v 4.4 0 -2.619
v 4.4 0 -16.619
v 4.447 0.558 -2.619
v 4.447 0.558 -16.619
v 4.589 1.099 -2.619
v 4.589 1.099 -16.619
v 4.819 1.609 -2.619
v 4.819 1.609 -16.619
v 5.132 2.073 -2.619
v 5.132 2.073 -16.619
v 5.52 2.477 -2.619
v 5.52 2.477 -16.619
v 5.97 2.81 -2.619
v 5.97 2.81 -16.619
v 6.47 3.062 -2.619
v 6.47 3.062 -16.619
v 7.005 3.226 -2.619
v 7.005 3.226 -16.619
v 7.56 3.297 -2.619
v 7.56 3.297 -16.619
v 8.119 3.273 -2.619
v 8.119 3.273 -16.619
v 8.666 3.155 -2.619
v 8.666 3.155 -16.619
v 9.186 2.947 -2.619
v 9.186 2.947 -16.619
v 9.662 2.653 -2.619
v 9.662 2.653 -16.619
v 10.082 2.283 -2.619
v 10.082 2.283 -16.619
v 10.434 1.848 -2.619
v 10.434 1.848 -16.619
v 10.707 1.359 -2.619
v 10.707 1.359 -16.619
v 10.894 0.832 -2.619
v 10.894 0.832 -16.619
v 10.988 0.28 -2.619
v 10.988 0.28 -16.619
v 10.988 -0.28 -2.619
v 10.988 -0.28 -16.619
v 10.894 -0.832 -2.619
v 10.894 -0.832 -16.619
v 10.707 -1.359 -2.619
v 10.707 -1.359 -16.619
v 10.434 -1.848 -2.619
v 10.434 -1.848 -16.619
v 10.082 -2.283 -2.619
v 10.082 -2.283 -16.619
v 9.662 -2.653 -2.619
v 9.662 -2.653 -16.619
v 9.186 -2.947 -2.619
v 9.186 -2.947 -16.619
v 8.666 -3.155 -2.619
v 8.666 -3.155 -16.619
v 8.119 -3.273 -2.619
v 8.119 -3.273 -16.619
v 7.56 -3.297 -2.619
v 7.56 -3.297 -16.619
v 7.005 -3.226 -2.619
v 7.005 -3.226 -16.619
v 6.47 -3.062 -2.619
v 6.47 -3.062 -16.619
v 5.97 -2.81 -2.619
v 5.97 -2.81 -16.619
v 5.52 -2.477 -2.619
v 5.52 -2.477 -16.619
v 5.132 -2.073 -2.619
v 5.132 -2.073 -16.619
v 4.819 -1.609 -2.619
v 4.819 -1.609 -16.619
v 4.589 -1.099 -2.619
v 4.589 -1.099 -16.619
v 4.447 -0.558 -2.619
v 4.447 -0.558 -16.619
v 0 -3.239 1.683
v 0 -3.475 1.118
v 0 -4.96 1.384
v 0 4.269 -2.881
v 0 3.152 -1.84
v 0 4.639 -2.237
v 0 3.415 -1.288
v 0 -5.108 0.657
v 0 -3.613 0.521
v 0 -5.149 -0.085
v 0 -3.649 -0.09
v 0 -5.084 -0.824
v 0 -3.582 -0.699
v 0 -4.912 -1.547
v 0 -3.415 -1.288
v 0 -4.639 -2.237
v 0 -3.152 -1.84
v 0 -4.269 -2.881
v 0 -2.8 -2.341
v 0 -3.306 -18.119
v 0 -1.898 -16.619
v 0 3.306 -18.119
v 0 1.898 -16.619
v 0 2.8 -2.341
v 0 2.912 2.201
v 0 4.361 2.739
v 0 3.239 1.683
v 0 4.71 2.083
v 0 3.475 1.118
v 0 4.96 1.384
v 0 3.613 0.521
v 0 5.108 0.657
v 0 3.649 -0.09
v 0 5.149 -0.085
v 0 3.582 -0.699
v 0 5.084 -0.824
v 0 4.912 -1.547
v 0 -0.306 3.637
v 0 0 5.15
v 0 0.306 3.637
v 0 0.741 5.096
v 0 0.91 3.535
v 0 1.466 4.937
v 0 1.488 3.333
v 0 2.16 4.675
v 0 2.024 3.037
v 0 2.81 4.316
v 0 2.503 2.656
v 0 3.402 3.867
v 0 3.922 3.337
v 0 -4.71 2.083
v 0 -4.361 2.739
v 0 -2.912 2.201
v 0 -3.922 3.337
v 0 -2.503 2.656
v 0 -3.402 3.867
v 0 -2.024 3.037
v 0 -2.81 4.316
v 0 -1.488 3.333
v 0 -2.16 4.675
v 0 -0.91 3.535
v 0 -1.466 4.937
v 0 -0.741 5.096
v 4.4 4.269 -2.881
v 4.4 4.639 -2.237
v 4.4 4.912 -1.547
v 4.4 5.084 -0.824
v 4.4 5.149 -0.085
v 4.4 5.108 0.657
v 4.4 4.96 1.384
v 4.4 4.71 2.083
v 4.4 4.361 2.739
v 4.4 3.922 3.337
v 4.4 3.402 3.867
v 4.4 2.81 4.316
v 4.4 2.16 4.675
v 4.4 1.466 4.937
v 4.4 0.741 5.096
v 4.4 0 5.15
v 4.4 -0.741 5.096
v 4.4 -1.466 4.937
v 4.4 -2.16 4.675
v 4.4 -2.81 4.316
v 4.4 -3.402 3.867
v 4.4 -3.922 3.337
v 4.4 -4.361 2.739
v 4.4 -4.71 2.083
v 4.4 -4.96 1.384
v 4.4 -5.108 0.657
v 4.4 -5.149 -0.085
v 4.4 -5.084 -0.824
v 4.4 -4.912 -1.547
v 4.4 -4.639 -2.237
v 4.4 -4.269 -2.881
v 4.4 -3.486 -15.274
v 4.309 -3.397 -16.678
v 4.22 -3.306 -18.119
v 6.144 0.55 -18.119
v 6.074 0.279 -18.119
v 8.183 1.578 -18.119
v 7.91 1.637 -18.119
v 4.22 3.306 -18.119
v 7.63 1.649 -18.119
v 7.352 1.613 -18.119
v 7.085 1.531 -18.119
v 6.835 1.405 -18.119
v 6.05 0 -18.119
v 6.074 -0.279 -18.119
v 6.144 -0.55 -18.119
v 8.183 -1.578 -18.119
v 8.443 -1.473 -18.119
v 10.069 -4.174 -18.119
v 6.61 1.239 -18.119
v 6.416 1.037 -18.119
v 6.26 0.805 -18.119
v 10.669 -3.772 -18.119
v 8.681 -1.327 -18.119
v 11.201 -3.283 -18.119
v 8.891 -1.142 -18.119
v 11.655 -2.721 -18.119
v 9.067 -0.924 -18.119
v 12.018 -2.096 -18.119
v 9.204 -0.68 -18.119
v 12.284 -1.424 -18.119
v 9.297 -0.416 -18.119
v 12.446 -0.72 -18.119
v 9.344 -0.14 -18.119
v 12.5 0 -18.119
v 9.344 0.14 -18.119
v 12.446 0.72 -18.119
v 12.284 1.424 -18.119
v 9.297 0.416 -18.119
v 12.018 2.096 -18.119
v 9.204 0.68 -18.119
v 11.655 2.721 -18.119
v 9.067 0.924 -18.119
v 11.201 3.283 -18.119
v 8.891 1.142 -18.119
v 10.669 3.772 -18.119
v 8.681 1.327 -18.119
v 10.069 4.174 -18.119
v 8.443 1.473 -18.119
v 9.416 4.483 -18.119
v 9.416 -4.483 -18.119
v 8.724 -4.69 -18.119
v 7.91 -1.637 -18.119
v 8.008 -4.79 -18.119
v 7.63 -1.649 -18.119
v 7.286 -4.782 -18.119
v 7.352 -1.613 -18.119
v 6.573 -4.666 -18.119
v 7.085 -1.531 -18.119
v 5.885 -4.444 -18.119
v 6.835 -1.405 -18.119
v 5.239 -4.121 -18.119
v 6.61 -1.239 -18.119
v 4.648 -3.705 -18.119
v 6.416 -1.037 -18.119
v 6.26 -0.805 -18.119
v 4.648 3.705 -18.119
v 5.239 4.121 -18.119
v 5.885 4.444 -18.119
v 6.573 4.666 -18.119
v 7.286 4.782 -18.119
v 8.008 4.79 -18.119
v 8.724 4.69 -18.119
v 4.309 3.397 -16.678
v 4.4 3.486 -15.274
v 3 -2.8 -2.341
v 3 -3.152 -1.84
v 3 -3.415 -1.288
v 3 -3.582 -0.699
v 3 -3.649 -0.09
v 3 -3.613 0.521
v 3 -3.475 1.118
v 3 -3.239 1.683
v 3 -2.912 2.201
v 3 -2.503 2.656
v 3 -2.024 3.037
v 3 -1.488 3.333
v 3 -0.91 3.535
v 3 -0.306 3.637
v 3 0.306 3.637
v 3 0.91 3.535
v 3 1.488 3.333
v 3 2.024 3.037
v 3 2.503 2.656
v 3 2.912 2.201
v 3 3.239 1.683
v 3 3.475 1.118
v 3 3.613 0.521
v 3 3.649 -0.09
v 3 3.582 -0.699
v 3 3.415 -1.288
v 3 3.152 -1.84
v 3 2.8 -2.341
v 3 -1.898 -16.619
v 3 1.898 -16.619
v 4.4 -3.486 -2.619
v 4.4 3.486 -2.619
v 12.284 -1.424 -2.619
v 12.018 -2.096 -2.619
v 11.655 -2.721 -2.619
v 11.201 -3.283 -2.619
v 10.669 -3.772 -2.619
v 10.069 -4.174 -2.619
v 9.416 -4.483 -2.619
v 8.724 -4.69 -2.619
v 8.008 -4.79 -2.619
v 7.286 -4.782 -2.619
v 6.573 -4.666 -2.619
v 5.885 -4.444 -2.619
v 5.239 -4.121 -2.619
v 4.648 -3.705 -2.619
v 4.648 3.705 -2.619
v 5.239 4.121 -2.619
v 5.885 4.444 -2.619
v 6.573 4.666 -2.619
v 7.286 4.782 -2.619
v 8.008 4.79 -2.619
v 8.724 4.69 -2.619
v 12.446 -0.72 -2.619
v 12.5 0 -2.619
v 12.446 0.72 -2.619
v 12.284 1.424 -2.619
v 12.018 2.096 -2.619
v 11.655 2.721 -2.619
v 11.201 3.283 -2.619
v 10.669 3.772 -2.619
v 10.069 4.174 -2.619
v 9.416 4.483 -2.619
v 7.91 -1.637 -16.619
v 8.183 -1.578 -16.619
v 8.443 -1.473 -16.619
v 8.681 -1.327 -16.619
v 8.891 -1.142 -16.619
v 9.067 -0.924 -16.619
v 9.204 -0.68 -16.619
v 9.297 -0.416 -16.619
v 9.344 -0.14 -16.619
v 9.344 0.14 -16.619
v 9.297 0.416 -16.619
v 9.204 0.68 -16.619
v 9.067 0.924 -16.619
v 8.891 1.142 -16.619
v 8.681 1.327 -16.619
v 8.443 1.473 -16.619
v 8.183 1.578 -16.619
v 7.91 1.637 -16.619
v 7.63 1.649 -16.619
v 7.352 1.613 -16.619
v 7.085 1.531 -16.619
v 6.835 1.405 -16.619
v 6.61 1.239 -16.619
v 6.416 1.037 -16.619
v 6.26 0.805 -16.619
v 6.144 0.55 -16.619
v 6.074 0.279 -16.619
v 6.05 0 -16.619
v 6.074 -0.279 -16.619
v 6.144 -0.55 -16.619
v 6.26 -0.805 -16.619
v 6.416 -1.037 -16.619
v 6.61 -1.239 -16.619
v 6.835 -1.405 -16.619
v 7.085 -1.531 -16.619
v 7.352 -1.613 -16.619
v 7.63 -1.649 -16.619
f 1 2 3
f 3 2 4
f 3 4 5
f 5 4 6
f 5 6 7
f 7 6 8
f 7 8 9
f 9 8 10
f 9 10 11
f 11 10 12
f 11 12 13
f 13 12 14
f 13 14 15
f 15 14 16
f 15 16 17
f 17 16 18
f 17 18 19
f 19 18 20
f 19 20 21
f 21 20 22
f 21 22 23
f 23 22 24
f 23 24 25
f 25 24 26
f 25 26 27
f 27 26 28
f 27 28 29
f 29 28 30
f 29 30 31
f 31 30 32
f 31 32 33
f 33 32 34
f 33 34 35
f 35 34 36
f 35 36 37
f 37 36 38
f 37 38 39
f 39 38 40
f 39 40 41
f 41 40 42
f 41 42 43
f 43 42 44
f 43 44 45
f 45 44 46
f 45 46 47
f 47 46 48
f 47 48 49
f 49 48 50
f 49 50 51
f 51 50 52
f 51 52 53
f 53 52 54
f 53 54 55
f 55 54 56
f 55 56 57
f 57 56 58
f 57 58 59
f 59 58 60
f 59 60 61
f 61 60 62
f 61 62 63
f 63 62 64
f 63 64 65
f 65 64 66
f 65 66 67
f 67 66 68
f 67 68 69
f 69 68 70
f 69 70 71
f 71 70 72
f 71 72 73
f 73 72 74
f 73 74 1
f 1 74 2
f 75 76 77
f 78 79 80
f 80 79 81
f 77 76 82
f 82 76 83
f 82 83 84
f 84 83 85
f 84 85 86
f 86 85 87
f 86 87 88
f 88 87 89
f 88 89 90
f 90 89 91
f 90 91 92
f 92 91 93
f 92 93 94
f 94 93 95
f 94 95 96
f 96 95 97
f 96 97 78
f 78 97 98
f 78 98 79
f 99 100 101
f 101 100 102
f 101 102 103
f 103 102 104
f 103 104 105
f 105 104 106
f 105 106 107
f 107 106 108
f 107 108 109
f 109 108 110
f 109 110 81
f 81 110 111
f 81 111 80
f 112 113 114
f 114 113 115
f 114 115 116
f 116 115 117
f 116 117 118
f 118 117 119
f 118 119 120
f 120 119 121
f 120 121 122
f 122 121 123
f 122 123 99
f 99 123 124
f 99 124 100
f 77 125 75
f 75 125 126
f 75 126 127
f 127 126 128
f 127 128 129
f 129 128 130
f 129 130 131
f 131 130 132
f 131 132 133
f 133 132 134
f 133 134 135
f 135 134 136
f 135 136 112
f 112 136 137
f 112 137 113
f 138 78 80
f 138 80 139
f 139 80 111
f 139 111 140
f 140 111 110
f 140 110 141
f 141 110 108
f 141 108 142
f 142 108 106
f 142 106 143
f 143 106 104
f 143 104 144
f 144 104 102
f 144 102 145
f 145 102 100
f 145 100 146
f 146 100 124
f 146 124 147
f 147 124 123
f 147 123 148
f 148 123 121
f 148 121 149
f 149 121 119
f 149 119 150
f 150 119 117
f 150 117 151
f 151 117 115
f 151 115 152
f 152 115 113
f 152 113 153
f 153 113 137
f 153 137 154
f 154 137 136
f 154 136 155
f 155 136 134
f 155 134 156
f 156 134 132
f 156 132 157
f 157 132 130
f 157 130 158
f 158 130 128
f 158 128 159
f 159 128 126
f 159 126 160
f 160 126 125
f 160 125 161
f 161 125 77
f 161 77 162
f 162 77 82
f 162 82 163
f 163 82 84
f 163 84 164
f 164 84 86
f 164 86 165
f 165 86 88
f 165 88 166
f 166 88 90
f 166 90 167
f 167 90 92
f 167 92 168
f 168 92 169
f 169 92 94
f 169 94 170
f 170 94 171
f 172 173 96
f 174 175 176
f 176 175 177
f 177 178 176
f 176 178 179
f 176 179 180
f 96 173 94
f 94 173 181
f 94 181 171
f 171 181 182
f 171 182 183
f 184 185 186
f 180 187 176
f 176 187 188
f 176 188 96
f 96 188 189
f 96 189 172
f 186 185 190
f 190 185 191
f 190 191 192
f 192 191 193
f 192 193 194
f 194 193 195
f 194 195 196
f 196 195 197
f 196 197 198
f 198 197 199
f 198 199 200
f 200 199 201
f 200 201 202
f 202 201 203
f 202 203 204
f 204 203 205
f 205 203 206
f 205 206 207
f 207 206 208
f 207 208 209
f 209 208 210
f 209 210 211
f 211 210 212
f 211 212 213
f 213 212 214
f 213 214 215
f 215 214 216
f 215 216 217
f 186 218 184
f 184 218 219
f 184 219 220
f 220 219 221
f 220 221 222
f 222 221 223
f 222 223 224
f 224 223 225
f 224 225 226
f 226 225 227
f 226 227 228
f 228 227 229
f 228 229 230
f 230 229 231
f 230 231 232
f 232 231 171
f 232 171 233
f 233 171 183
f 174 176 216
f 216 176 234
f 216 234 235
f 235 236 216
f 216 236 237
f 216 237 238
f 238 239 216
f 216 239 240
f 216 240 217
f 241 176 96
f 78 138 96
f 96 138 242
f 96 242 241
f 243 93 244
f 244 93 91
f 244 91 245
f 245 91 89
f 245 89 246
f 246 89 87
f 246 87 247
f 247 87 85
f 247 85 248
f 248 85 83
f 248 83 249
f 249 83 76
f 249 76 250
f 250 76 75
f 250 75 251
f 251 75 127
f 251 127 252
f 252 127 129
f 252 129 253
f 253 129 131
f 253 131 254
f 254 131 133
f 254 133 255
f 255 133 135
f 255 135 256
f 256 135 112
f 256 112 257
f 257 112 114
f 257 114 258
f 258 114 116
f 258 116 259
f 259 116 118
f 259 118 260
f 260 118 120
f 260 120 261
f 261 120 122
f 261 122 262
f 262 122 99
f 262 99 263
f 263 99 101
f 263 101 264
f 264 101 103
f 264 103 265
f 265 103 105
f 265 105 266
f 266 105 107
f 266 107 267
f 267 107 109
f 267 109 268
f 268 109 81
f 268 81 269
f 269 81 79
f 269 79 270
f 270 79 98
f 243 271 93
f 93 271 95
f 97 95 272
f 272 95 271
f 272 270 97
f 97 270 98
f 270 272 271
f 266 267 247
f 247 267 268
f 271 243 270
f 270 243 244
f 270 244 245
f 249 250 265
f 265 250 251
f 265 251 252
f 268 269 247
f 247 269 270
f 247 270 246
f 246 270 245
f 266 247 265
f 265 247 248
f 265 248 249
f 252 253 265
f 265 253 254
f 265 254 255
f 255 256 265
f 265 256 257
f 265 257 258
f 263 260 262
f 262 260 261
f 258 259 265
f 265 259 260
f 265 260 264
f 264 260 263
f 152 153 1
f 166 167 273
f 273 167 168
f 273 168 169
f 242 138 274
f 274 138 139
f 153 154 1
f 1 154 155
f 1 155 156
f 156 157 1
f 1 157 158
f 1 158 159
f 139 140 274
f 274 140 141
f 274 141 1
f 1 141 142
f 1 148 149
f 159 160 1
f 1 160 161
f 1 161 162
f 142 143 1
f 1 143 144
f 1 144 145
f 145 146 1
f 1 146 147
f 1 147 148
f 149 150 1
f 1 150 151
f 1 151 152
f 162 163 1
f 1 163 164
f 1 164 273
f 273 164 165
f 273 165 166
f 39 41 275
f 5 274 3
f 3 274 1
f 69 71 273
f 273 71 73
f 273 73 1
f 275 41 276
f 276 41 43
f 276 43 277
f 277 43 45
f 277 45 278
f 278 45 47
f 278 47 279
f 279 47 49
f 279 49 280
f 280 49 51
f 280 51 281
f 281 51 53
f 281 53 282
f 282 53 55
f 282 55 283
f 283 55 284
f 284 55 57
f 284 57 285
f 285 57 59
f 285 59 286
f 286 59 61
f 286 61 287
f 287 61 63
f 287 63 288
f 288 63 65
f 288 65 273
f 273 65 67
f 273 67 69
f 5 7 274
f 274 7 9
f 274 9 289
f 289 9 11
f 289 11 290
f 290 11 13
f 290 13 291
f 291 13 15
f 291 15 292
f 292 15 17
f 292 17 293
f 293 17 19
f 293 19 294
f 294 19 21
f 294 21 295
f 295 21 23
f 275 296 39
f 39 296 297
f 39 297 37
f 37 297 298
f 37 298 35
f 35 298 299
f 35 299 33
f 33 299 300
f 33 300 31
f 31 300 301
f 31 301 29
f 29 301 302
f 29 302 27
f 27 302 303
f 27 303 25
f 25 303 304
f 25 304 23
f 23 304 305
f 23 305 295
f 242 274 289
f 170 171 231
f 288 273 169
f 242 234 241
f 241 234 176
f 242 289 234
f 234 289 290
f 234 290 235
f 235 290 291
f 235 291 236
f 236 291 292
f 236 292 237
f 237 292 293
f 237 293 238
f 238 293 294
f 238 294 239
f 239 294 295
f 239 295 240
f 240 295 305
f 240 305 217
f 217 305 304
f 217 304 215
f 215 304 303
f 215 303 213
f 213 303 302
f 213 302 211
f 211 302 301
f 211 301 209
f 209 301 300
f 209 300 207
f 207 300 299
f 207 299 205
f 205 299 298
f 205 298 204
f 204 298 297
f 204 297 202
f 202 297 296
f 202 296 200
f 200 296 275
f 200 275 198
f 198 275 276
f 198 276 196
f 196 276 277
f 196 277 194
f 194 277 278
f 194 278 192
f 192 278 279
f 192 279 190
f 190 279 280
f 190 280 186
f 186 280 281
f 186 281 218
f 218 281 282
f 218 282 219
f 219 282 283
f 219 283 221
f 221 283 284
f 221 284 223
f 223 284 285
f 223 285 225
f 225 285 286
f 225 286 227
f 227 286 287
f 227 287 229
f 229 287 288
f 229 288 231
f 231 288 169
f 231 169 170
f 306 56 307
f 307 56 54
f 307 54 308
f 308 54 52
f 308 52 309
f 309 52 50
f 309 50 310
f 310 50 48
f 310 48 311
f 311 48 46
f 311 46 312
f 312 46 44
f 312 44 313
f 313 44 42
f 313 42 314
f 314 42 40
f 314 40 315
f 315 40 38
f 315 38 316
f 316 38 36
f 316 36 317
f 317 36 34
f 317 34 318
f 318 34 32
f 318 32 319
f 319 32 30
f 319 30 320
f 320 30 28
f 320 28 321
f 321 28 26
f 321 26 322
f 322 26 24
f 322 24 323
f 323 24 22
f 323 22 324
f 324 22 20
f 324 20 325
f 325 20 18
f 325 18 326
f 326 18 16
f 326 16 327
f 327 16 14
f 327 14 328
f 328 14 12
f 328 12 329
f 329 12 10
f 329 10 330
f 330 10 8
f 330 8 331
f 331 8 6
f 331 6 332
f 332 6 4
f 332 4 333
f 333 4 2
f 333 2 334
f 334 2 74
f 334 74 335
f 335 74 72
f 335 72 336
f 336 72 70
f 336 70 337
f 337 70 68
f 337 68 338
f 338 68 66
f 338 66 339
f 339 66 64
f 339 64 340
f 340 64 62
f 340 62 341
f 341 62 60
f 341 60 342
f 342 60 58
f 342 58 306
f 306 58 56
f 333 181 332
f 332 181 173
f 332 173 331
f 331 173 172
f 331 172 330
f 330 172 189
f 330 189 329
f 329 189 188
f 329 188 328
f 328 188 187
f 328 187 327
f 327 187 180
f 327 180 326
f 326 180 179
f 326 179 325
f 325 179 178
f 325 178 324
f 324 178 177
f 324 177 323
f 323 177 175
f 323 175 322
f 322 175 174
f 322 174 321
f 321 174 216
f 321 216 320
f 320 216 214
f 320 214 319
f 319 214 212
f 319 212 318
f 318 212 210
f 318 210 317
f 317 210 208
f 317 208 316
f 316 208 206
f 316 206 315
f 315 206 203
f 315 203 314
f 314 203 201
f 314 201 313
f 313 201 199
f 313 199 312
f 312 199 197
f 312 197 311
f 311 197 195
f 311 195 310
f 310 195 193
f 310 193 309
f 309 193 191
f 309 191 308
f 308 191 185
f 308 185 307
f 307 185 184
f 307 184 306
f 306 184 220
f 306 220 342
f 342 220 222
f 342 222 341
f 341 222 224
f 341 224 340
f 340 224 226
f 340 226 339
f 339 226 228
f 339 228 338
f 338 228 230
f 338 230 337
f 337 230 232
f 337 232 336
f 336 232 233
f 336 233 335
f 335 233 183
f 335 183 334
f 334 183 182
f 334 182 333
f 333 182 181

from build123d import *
from build123d.topology import SkipClean

# Parameters (mm, degrees)
BOSS_EXTRUDE1_DEPTH = 3
BOSS_EXTRUDE2_DEPTH = 1.4
SKETCH3_R           = 4.8
SKETCH3_R_2         = 3.3
BOSS_EXTRUDE3_DEPTH = 15.5
SKETCH4_R           = 3.3
SKETCH4_R_2         = 1.65
BOSS_EXTRUDE4_DEPTH = 1.5
CUT_EXTRUDE1_DEPTH  = 3


with BuildPart() as part:
    # Sketch1 → Boss-Extrude1 (new body)
    with BuildSketch(Plane(origin=(0, 0, 0), x_dir=(0, 0, -1), z_dir=(1, 0, 0))):
        with BuildLine():
            Line((2.880783046, 4.268909585), (12.721340672, 3.647013525))
            Line((12.721340672, 3.647013525), (18.118769618, 3.305910924))
            Line((18.118769618, 3.305910924), (18.118769618, -3.305910924))
            Line((18.118769618, -3.305910924), (12.721340672, -3.647013525))
            Line((12.721340672, -3.647013525), (2.880783046, -4.268909585))
            ThreePointArc((2.880783046, -4.268909585), (-5.15, 0), (2.880783046, 4.268909585))
        make_face()
        with BuildLine():
            Line((2.341473895, 2.8), (12.626733553, 2.15))
            Line((12.626733553, 2.15), (16.618769618, 1.897714348))
            Line((16.618769618, 1.897714348), (16.618769618, -1.897714348))
            Line((16.618769618, -1.897714348), (12.626733553, -2.15))
            Line((12.626733553, -2.15), (2.341473895, -2.8))
            ThreePointArc((2.341473895, -2.8), (-3.65, 0), (2.341473895, 2.8))
        make_face(mode=Mode.SUBTRACT)
    extrude(amount=BOSS_EXTRUDE1_DEPTH)

    # Sketch2 → Boss-Extrude2 (add)
    with SkipClean():  # the faces are left unmerged after this step: merging them gives an invalid solid
        with BuildSketch(Plane(origin=(3, 0, 0), x_dir=(0, 0, -1), z_dir=(1, 0, 0))):
            with BuildLine():
                Line((2.880783046, -4.268909585), (18.118769618, -3.305910924))
                Line((18.118769618, -3.305910924), (18.118769618, 3.305910924))
                Line((18.118769618, 3.305910924), (2.880783046, 4.268909585))
                ThreePointArc((2.880783046, 4.268909585), (-5.15, 0), (2.880783046, -4.268909585))
            make_face()
        extrude(amount=BOSS_EXTRUDE2_DEPTH)

    # Sketch3 → Boss-Extrude3 (add)
    with SkipClean():  # the faces are left unmerged after this step: merging them gives an invalid solid
        with BuildSketch(Plane(origin=(0, 0, -18.118769618), x_dir=(-1, 0, 0), z_dir=(0, 0, -1))):
            with Locations((-7.7, 0)):
                Circle(SKETCH3_R)
            with Locations((-7.7, 0)):
                Circle(SKETCH3_R_2, mode=Mode.SUBTRACT)
        extrude(amount=-BOSS_EXTRUDE3_DEPTH)

    # Sketch4 → Boss-Extrude4 (add)
    with SkipClean():  # the faces are left unmerged after this step: merging them gives an invalid solid
        with BuildSketch(Plane(origin=(0, 0, -18.118769618), x_dir=(-1, 0, 0), z_dir=(0, 0, -1))):
            with Locations((-7.7, 0)):
                Circle(SKETCH4_R)
            with Locations((-7.7, 0)):
                Circle(SKETCH4_R_2, mode=Mode.SUBTRACT)
        extrude(amount=-BOSS_EXTRUDE4_DEPTH)

    # Sketch5 → Cut-Extrude1 (cut)
    with SkipClean():  # the faces are left unmerged after this step: merging them gives an invalid solid
        with BuildSketch(Plane.ZY):
            with BuildLine():
                Line((-16.618769618, 1.897714348), (-2.341473895, 2.8))
                ThreePointArc((-2.341473895, 2.8), (3.65, 0), (-2.341473895, -2.8))
                Line((-2.341473895, -2.8), (-16.618769618, -1.897714348))
                Line((-16.618769618, -1.897714348), (-16.618769618, 1.897714348))
            make_face()
        extrude(amount=-CUT_EXTRUDE1_DEPTH, mode=Mode.SUBTRACT)


solid = part.part
